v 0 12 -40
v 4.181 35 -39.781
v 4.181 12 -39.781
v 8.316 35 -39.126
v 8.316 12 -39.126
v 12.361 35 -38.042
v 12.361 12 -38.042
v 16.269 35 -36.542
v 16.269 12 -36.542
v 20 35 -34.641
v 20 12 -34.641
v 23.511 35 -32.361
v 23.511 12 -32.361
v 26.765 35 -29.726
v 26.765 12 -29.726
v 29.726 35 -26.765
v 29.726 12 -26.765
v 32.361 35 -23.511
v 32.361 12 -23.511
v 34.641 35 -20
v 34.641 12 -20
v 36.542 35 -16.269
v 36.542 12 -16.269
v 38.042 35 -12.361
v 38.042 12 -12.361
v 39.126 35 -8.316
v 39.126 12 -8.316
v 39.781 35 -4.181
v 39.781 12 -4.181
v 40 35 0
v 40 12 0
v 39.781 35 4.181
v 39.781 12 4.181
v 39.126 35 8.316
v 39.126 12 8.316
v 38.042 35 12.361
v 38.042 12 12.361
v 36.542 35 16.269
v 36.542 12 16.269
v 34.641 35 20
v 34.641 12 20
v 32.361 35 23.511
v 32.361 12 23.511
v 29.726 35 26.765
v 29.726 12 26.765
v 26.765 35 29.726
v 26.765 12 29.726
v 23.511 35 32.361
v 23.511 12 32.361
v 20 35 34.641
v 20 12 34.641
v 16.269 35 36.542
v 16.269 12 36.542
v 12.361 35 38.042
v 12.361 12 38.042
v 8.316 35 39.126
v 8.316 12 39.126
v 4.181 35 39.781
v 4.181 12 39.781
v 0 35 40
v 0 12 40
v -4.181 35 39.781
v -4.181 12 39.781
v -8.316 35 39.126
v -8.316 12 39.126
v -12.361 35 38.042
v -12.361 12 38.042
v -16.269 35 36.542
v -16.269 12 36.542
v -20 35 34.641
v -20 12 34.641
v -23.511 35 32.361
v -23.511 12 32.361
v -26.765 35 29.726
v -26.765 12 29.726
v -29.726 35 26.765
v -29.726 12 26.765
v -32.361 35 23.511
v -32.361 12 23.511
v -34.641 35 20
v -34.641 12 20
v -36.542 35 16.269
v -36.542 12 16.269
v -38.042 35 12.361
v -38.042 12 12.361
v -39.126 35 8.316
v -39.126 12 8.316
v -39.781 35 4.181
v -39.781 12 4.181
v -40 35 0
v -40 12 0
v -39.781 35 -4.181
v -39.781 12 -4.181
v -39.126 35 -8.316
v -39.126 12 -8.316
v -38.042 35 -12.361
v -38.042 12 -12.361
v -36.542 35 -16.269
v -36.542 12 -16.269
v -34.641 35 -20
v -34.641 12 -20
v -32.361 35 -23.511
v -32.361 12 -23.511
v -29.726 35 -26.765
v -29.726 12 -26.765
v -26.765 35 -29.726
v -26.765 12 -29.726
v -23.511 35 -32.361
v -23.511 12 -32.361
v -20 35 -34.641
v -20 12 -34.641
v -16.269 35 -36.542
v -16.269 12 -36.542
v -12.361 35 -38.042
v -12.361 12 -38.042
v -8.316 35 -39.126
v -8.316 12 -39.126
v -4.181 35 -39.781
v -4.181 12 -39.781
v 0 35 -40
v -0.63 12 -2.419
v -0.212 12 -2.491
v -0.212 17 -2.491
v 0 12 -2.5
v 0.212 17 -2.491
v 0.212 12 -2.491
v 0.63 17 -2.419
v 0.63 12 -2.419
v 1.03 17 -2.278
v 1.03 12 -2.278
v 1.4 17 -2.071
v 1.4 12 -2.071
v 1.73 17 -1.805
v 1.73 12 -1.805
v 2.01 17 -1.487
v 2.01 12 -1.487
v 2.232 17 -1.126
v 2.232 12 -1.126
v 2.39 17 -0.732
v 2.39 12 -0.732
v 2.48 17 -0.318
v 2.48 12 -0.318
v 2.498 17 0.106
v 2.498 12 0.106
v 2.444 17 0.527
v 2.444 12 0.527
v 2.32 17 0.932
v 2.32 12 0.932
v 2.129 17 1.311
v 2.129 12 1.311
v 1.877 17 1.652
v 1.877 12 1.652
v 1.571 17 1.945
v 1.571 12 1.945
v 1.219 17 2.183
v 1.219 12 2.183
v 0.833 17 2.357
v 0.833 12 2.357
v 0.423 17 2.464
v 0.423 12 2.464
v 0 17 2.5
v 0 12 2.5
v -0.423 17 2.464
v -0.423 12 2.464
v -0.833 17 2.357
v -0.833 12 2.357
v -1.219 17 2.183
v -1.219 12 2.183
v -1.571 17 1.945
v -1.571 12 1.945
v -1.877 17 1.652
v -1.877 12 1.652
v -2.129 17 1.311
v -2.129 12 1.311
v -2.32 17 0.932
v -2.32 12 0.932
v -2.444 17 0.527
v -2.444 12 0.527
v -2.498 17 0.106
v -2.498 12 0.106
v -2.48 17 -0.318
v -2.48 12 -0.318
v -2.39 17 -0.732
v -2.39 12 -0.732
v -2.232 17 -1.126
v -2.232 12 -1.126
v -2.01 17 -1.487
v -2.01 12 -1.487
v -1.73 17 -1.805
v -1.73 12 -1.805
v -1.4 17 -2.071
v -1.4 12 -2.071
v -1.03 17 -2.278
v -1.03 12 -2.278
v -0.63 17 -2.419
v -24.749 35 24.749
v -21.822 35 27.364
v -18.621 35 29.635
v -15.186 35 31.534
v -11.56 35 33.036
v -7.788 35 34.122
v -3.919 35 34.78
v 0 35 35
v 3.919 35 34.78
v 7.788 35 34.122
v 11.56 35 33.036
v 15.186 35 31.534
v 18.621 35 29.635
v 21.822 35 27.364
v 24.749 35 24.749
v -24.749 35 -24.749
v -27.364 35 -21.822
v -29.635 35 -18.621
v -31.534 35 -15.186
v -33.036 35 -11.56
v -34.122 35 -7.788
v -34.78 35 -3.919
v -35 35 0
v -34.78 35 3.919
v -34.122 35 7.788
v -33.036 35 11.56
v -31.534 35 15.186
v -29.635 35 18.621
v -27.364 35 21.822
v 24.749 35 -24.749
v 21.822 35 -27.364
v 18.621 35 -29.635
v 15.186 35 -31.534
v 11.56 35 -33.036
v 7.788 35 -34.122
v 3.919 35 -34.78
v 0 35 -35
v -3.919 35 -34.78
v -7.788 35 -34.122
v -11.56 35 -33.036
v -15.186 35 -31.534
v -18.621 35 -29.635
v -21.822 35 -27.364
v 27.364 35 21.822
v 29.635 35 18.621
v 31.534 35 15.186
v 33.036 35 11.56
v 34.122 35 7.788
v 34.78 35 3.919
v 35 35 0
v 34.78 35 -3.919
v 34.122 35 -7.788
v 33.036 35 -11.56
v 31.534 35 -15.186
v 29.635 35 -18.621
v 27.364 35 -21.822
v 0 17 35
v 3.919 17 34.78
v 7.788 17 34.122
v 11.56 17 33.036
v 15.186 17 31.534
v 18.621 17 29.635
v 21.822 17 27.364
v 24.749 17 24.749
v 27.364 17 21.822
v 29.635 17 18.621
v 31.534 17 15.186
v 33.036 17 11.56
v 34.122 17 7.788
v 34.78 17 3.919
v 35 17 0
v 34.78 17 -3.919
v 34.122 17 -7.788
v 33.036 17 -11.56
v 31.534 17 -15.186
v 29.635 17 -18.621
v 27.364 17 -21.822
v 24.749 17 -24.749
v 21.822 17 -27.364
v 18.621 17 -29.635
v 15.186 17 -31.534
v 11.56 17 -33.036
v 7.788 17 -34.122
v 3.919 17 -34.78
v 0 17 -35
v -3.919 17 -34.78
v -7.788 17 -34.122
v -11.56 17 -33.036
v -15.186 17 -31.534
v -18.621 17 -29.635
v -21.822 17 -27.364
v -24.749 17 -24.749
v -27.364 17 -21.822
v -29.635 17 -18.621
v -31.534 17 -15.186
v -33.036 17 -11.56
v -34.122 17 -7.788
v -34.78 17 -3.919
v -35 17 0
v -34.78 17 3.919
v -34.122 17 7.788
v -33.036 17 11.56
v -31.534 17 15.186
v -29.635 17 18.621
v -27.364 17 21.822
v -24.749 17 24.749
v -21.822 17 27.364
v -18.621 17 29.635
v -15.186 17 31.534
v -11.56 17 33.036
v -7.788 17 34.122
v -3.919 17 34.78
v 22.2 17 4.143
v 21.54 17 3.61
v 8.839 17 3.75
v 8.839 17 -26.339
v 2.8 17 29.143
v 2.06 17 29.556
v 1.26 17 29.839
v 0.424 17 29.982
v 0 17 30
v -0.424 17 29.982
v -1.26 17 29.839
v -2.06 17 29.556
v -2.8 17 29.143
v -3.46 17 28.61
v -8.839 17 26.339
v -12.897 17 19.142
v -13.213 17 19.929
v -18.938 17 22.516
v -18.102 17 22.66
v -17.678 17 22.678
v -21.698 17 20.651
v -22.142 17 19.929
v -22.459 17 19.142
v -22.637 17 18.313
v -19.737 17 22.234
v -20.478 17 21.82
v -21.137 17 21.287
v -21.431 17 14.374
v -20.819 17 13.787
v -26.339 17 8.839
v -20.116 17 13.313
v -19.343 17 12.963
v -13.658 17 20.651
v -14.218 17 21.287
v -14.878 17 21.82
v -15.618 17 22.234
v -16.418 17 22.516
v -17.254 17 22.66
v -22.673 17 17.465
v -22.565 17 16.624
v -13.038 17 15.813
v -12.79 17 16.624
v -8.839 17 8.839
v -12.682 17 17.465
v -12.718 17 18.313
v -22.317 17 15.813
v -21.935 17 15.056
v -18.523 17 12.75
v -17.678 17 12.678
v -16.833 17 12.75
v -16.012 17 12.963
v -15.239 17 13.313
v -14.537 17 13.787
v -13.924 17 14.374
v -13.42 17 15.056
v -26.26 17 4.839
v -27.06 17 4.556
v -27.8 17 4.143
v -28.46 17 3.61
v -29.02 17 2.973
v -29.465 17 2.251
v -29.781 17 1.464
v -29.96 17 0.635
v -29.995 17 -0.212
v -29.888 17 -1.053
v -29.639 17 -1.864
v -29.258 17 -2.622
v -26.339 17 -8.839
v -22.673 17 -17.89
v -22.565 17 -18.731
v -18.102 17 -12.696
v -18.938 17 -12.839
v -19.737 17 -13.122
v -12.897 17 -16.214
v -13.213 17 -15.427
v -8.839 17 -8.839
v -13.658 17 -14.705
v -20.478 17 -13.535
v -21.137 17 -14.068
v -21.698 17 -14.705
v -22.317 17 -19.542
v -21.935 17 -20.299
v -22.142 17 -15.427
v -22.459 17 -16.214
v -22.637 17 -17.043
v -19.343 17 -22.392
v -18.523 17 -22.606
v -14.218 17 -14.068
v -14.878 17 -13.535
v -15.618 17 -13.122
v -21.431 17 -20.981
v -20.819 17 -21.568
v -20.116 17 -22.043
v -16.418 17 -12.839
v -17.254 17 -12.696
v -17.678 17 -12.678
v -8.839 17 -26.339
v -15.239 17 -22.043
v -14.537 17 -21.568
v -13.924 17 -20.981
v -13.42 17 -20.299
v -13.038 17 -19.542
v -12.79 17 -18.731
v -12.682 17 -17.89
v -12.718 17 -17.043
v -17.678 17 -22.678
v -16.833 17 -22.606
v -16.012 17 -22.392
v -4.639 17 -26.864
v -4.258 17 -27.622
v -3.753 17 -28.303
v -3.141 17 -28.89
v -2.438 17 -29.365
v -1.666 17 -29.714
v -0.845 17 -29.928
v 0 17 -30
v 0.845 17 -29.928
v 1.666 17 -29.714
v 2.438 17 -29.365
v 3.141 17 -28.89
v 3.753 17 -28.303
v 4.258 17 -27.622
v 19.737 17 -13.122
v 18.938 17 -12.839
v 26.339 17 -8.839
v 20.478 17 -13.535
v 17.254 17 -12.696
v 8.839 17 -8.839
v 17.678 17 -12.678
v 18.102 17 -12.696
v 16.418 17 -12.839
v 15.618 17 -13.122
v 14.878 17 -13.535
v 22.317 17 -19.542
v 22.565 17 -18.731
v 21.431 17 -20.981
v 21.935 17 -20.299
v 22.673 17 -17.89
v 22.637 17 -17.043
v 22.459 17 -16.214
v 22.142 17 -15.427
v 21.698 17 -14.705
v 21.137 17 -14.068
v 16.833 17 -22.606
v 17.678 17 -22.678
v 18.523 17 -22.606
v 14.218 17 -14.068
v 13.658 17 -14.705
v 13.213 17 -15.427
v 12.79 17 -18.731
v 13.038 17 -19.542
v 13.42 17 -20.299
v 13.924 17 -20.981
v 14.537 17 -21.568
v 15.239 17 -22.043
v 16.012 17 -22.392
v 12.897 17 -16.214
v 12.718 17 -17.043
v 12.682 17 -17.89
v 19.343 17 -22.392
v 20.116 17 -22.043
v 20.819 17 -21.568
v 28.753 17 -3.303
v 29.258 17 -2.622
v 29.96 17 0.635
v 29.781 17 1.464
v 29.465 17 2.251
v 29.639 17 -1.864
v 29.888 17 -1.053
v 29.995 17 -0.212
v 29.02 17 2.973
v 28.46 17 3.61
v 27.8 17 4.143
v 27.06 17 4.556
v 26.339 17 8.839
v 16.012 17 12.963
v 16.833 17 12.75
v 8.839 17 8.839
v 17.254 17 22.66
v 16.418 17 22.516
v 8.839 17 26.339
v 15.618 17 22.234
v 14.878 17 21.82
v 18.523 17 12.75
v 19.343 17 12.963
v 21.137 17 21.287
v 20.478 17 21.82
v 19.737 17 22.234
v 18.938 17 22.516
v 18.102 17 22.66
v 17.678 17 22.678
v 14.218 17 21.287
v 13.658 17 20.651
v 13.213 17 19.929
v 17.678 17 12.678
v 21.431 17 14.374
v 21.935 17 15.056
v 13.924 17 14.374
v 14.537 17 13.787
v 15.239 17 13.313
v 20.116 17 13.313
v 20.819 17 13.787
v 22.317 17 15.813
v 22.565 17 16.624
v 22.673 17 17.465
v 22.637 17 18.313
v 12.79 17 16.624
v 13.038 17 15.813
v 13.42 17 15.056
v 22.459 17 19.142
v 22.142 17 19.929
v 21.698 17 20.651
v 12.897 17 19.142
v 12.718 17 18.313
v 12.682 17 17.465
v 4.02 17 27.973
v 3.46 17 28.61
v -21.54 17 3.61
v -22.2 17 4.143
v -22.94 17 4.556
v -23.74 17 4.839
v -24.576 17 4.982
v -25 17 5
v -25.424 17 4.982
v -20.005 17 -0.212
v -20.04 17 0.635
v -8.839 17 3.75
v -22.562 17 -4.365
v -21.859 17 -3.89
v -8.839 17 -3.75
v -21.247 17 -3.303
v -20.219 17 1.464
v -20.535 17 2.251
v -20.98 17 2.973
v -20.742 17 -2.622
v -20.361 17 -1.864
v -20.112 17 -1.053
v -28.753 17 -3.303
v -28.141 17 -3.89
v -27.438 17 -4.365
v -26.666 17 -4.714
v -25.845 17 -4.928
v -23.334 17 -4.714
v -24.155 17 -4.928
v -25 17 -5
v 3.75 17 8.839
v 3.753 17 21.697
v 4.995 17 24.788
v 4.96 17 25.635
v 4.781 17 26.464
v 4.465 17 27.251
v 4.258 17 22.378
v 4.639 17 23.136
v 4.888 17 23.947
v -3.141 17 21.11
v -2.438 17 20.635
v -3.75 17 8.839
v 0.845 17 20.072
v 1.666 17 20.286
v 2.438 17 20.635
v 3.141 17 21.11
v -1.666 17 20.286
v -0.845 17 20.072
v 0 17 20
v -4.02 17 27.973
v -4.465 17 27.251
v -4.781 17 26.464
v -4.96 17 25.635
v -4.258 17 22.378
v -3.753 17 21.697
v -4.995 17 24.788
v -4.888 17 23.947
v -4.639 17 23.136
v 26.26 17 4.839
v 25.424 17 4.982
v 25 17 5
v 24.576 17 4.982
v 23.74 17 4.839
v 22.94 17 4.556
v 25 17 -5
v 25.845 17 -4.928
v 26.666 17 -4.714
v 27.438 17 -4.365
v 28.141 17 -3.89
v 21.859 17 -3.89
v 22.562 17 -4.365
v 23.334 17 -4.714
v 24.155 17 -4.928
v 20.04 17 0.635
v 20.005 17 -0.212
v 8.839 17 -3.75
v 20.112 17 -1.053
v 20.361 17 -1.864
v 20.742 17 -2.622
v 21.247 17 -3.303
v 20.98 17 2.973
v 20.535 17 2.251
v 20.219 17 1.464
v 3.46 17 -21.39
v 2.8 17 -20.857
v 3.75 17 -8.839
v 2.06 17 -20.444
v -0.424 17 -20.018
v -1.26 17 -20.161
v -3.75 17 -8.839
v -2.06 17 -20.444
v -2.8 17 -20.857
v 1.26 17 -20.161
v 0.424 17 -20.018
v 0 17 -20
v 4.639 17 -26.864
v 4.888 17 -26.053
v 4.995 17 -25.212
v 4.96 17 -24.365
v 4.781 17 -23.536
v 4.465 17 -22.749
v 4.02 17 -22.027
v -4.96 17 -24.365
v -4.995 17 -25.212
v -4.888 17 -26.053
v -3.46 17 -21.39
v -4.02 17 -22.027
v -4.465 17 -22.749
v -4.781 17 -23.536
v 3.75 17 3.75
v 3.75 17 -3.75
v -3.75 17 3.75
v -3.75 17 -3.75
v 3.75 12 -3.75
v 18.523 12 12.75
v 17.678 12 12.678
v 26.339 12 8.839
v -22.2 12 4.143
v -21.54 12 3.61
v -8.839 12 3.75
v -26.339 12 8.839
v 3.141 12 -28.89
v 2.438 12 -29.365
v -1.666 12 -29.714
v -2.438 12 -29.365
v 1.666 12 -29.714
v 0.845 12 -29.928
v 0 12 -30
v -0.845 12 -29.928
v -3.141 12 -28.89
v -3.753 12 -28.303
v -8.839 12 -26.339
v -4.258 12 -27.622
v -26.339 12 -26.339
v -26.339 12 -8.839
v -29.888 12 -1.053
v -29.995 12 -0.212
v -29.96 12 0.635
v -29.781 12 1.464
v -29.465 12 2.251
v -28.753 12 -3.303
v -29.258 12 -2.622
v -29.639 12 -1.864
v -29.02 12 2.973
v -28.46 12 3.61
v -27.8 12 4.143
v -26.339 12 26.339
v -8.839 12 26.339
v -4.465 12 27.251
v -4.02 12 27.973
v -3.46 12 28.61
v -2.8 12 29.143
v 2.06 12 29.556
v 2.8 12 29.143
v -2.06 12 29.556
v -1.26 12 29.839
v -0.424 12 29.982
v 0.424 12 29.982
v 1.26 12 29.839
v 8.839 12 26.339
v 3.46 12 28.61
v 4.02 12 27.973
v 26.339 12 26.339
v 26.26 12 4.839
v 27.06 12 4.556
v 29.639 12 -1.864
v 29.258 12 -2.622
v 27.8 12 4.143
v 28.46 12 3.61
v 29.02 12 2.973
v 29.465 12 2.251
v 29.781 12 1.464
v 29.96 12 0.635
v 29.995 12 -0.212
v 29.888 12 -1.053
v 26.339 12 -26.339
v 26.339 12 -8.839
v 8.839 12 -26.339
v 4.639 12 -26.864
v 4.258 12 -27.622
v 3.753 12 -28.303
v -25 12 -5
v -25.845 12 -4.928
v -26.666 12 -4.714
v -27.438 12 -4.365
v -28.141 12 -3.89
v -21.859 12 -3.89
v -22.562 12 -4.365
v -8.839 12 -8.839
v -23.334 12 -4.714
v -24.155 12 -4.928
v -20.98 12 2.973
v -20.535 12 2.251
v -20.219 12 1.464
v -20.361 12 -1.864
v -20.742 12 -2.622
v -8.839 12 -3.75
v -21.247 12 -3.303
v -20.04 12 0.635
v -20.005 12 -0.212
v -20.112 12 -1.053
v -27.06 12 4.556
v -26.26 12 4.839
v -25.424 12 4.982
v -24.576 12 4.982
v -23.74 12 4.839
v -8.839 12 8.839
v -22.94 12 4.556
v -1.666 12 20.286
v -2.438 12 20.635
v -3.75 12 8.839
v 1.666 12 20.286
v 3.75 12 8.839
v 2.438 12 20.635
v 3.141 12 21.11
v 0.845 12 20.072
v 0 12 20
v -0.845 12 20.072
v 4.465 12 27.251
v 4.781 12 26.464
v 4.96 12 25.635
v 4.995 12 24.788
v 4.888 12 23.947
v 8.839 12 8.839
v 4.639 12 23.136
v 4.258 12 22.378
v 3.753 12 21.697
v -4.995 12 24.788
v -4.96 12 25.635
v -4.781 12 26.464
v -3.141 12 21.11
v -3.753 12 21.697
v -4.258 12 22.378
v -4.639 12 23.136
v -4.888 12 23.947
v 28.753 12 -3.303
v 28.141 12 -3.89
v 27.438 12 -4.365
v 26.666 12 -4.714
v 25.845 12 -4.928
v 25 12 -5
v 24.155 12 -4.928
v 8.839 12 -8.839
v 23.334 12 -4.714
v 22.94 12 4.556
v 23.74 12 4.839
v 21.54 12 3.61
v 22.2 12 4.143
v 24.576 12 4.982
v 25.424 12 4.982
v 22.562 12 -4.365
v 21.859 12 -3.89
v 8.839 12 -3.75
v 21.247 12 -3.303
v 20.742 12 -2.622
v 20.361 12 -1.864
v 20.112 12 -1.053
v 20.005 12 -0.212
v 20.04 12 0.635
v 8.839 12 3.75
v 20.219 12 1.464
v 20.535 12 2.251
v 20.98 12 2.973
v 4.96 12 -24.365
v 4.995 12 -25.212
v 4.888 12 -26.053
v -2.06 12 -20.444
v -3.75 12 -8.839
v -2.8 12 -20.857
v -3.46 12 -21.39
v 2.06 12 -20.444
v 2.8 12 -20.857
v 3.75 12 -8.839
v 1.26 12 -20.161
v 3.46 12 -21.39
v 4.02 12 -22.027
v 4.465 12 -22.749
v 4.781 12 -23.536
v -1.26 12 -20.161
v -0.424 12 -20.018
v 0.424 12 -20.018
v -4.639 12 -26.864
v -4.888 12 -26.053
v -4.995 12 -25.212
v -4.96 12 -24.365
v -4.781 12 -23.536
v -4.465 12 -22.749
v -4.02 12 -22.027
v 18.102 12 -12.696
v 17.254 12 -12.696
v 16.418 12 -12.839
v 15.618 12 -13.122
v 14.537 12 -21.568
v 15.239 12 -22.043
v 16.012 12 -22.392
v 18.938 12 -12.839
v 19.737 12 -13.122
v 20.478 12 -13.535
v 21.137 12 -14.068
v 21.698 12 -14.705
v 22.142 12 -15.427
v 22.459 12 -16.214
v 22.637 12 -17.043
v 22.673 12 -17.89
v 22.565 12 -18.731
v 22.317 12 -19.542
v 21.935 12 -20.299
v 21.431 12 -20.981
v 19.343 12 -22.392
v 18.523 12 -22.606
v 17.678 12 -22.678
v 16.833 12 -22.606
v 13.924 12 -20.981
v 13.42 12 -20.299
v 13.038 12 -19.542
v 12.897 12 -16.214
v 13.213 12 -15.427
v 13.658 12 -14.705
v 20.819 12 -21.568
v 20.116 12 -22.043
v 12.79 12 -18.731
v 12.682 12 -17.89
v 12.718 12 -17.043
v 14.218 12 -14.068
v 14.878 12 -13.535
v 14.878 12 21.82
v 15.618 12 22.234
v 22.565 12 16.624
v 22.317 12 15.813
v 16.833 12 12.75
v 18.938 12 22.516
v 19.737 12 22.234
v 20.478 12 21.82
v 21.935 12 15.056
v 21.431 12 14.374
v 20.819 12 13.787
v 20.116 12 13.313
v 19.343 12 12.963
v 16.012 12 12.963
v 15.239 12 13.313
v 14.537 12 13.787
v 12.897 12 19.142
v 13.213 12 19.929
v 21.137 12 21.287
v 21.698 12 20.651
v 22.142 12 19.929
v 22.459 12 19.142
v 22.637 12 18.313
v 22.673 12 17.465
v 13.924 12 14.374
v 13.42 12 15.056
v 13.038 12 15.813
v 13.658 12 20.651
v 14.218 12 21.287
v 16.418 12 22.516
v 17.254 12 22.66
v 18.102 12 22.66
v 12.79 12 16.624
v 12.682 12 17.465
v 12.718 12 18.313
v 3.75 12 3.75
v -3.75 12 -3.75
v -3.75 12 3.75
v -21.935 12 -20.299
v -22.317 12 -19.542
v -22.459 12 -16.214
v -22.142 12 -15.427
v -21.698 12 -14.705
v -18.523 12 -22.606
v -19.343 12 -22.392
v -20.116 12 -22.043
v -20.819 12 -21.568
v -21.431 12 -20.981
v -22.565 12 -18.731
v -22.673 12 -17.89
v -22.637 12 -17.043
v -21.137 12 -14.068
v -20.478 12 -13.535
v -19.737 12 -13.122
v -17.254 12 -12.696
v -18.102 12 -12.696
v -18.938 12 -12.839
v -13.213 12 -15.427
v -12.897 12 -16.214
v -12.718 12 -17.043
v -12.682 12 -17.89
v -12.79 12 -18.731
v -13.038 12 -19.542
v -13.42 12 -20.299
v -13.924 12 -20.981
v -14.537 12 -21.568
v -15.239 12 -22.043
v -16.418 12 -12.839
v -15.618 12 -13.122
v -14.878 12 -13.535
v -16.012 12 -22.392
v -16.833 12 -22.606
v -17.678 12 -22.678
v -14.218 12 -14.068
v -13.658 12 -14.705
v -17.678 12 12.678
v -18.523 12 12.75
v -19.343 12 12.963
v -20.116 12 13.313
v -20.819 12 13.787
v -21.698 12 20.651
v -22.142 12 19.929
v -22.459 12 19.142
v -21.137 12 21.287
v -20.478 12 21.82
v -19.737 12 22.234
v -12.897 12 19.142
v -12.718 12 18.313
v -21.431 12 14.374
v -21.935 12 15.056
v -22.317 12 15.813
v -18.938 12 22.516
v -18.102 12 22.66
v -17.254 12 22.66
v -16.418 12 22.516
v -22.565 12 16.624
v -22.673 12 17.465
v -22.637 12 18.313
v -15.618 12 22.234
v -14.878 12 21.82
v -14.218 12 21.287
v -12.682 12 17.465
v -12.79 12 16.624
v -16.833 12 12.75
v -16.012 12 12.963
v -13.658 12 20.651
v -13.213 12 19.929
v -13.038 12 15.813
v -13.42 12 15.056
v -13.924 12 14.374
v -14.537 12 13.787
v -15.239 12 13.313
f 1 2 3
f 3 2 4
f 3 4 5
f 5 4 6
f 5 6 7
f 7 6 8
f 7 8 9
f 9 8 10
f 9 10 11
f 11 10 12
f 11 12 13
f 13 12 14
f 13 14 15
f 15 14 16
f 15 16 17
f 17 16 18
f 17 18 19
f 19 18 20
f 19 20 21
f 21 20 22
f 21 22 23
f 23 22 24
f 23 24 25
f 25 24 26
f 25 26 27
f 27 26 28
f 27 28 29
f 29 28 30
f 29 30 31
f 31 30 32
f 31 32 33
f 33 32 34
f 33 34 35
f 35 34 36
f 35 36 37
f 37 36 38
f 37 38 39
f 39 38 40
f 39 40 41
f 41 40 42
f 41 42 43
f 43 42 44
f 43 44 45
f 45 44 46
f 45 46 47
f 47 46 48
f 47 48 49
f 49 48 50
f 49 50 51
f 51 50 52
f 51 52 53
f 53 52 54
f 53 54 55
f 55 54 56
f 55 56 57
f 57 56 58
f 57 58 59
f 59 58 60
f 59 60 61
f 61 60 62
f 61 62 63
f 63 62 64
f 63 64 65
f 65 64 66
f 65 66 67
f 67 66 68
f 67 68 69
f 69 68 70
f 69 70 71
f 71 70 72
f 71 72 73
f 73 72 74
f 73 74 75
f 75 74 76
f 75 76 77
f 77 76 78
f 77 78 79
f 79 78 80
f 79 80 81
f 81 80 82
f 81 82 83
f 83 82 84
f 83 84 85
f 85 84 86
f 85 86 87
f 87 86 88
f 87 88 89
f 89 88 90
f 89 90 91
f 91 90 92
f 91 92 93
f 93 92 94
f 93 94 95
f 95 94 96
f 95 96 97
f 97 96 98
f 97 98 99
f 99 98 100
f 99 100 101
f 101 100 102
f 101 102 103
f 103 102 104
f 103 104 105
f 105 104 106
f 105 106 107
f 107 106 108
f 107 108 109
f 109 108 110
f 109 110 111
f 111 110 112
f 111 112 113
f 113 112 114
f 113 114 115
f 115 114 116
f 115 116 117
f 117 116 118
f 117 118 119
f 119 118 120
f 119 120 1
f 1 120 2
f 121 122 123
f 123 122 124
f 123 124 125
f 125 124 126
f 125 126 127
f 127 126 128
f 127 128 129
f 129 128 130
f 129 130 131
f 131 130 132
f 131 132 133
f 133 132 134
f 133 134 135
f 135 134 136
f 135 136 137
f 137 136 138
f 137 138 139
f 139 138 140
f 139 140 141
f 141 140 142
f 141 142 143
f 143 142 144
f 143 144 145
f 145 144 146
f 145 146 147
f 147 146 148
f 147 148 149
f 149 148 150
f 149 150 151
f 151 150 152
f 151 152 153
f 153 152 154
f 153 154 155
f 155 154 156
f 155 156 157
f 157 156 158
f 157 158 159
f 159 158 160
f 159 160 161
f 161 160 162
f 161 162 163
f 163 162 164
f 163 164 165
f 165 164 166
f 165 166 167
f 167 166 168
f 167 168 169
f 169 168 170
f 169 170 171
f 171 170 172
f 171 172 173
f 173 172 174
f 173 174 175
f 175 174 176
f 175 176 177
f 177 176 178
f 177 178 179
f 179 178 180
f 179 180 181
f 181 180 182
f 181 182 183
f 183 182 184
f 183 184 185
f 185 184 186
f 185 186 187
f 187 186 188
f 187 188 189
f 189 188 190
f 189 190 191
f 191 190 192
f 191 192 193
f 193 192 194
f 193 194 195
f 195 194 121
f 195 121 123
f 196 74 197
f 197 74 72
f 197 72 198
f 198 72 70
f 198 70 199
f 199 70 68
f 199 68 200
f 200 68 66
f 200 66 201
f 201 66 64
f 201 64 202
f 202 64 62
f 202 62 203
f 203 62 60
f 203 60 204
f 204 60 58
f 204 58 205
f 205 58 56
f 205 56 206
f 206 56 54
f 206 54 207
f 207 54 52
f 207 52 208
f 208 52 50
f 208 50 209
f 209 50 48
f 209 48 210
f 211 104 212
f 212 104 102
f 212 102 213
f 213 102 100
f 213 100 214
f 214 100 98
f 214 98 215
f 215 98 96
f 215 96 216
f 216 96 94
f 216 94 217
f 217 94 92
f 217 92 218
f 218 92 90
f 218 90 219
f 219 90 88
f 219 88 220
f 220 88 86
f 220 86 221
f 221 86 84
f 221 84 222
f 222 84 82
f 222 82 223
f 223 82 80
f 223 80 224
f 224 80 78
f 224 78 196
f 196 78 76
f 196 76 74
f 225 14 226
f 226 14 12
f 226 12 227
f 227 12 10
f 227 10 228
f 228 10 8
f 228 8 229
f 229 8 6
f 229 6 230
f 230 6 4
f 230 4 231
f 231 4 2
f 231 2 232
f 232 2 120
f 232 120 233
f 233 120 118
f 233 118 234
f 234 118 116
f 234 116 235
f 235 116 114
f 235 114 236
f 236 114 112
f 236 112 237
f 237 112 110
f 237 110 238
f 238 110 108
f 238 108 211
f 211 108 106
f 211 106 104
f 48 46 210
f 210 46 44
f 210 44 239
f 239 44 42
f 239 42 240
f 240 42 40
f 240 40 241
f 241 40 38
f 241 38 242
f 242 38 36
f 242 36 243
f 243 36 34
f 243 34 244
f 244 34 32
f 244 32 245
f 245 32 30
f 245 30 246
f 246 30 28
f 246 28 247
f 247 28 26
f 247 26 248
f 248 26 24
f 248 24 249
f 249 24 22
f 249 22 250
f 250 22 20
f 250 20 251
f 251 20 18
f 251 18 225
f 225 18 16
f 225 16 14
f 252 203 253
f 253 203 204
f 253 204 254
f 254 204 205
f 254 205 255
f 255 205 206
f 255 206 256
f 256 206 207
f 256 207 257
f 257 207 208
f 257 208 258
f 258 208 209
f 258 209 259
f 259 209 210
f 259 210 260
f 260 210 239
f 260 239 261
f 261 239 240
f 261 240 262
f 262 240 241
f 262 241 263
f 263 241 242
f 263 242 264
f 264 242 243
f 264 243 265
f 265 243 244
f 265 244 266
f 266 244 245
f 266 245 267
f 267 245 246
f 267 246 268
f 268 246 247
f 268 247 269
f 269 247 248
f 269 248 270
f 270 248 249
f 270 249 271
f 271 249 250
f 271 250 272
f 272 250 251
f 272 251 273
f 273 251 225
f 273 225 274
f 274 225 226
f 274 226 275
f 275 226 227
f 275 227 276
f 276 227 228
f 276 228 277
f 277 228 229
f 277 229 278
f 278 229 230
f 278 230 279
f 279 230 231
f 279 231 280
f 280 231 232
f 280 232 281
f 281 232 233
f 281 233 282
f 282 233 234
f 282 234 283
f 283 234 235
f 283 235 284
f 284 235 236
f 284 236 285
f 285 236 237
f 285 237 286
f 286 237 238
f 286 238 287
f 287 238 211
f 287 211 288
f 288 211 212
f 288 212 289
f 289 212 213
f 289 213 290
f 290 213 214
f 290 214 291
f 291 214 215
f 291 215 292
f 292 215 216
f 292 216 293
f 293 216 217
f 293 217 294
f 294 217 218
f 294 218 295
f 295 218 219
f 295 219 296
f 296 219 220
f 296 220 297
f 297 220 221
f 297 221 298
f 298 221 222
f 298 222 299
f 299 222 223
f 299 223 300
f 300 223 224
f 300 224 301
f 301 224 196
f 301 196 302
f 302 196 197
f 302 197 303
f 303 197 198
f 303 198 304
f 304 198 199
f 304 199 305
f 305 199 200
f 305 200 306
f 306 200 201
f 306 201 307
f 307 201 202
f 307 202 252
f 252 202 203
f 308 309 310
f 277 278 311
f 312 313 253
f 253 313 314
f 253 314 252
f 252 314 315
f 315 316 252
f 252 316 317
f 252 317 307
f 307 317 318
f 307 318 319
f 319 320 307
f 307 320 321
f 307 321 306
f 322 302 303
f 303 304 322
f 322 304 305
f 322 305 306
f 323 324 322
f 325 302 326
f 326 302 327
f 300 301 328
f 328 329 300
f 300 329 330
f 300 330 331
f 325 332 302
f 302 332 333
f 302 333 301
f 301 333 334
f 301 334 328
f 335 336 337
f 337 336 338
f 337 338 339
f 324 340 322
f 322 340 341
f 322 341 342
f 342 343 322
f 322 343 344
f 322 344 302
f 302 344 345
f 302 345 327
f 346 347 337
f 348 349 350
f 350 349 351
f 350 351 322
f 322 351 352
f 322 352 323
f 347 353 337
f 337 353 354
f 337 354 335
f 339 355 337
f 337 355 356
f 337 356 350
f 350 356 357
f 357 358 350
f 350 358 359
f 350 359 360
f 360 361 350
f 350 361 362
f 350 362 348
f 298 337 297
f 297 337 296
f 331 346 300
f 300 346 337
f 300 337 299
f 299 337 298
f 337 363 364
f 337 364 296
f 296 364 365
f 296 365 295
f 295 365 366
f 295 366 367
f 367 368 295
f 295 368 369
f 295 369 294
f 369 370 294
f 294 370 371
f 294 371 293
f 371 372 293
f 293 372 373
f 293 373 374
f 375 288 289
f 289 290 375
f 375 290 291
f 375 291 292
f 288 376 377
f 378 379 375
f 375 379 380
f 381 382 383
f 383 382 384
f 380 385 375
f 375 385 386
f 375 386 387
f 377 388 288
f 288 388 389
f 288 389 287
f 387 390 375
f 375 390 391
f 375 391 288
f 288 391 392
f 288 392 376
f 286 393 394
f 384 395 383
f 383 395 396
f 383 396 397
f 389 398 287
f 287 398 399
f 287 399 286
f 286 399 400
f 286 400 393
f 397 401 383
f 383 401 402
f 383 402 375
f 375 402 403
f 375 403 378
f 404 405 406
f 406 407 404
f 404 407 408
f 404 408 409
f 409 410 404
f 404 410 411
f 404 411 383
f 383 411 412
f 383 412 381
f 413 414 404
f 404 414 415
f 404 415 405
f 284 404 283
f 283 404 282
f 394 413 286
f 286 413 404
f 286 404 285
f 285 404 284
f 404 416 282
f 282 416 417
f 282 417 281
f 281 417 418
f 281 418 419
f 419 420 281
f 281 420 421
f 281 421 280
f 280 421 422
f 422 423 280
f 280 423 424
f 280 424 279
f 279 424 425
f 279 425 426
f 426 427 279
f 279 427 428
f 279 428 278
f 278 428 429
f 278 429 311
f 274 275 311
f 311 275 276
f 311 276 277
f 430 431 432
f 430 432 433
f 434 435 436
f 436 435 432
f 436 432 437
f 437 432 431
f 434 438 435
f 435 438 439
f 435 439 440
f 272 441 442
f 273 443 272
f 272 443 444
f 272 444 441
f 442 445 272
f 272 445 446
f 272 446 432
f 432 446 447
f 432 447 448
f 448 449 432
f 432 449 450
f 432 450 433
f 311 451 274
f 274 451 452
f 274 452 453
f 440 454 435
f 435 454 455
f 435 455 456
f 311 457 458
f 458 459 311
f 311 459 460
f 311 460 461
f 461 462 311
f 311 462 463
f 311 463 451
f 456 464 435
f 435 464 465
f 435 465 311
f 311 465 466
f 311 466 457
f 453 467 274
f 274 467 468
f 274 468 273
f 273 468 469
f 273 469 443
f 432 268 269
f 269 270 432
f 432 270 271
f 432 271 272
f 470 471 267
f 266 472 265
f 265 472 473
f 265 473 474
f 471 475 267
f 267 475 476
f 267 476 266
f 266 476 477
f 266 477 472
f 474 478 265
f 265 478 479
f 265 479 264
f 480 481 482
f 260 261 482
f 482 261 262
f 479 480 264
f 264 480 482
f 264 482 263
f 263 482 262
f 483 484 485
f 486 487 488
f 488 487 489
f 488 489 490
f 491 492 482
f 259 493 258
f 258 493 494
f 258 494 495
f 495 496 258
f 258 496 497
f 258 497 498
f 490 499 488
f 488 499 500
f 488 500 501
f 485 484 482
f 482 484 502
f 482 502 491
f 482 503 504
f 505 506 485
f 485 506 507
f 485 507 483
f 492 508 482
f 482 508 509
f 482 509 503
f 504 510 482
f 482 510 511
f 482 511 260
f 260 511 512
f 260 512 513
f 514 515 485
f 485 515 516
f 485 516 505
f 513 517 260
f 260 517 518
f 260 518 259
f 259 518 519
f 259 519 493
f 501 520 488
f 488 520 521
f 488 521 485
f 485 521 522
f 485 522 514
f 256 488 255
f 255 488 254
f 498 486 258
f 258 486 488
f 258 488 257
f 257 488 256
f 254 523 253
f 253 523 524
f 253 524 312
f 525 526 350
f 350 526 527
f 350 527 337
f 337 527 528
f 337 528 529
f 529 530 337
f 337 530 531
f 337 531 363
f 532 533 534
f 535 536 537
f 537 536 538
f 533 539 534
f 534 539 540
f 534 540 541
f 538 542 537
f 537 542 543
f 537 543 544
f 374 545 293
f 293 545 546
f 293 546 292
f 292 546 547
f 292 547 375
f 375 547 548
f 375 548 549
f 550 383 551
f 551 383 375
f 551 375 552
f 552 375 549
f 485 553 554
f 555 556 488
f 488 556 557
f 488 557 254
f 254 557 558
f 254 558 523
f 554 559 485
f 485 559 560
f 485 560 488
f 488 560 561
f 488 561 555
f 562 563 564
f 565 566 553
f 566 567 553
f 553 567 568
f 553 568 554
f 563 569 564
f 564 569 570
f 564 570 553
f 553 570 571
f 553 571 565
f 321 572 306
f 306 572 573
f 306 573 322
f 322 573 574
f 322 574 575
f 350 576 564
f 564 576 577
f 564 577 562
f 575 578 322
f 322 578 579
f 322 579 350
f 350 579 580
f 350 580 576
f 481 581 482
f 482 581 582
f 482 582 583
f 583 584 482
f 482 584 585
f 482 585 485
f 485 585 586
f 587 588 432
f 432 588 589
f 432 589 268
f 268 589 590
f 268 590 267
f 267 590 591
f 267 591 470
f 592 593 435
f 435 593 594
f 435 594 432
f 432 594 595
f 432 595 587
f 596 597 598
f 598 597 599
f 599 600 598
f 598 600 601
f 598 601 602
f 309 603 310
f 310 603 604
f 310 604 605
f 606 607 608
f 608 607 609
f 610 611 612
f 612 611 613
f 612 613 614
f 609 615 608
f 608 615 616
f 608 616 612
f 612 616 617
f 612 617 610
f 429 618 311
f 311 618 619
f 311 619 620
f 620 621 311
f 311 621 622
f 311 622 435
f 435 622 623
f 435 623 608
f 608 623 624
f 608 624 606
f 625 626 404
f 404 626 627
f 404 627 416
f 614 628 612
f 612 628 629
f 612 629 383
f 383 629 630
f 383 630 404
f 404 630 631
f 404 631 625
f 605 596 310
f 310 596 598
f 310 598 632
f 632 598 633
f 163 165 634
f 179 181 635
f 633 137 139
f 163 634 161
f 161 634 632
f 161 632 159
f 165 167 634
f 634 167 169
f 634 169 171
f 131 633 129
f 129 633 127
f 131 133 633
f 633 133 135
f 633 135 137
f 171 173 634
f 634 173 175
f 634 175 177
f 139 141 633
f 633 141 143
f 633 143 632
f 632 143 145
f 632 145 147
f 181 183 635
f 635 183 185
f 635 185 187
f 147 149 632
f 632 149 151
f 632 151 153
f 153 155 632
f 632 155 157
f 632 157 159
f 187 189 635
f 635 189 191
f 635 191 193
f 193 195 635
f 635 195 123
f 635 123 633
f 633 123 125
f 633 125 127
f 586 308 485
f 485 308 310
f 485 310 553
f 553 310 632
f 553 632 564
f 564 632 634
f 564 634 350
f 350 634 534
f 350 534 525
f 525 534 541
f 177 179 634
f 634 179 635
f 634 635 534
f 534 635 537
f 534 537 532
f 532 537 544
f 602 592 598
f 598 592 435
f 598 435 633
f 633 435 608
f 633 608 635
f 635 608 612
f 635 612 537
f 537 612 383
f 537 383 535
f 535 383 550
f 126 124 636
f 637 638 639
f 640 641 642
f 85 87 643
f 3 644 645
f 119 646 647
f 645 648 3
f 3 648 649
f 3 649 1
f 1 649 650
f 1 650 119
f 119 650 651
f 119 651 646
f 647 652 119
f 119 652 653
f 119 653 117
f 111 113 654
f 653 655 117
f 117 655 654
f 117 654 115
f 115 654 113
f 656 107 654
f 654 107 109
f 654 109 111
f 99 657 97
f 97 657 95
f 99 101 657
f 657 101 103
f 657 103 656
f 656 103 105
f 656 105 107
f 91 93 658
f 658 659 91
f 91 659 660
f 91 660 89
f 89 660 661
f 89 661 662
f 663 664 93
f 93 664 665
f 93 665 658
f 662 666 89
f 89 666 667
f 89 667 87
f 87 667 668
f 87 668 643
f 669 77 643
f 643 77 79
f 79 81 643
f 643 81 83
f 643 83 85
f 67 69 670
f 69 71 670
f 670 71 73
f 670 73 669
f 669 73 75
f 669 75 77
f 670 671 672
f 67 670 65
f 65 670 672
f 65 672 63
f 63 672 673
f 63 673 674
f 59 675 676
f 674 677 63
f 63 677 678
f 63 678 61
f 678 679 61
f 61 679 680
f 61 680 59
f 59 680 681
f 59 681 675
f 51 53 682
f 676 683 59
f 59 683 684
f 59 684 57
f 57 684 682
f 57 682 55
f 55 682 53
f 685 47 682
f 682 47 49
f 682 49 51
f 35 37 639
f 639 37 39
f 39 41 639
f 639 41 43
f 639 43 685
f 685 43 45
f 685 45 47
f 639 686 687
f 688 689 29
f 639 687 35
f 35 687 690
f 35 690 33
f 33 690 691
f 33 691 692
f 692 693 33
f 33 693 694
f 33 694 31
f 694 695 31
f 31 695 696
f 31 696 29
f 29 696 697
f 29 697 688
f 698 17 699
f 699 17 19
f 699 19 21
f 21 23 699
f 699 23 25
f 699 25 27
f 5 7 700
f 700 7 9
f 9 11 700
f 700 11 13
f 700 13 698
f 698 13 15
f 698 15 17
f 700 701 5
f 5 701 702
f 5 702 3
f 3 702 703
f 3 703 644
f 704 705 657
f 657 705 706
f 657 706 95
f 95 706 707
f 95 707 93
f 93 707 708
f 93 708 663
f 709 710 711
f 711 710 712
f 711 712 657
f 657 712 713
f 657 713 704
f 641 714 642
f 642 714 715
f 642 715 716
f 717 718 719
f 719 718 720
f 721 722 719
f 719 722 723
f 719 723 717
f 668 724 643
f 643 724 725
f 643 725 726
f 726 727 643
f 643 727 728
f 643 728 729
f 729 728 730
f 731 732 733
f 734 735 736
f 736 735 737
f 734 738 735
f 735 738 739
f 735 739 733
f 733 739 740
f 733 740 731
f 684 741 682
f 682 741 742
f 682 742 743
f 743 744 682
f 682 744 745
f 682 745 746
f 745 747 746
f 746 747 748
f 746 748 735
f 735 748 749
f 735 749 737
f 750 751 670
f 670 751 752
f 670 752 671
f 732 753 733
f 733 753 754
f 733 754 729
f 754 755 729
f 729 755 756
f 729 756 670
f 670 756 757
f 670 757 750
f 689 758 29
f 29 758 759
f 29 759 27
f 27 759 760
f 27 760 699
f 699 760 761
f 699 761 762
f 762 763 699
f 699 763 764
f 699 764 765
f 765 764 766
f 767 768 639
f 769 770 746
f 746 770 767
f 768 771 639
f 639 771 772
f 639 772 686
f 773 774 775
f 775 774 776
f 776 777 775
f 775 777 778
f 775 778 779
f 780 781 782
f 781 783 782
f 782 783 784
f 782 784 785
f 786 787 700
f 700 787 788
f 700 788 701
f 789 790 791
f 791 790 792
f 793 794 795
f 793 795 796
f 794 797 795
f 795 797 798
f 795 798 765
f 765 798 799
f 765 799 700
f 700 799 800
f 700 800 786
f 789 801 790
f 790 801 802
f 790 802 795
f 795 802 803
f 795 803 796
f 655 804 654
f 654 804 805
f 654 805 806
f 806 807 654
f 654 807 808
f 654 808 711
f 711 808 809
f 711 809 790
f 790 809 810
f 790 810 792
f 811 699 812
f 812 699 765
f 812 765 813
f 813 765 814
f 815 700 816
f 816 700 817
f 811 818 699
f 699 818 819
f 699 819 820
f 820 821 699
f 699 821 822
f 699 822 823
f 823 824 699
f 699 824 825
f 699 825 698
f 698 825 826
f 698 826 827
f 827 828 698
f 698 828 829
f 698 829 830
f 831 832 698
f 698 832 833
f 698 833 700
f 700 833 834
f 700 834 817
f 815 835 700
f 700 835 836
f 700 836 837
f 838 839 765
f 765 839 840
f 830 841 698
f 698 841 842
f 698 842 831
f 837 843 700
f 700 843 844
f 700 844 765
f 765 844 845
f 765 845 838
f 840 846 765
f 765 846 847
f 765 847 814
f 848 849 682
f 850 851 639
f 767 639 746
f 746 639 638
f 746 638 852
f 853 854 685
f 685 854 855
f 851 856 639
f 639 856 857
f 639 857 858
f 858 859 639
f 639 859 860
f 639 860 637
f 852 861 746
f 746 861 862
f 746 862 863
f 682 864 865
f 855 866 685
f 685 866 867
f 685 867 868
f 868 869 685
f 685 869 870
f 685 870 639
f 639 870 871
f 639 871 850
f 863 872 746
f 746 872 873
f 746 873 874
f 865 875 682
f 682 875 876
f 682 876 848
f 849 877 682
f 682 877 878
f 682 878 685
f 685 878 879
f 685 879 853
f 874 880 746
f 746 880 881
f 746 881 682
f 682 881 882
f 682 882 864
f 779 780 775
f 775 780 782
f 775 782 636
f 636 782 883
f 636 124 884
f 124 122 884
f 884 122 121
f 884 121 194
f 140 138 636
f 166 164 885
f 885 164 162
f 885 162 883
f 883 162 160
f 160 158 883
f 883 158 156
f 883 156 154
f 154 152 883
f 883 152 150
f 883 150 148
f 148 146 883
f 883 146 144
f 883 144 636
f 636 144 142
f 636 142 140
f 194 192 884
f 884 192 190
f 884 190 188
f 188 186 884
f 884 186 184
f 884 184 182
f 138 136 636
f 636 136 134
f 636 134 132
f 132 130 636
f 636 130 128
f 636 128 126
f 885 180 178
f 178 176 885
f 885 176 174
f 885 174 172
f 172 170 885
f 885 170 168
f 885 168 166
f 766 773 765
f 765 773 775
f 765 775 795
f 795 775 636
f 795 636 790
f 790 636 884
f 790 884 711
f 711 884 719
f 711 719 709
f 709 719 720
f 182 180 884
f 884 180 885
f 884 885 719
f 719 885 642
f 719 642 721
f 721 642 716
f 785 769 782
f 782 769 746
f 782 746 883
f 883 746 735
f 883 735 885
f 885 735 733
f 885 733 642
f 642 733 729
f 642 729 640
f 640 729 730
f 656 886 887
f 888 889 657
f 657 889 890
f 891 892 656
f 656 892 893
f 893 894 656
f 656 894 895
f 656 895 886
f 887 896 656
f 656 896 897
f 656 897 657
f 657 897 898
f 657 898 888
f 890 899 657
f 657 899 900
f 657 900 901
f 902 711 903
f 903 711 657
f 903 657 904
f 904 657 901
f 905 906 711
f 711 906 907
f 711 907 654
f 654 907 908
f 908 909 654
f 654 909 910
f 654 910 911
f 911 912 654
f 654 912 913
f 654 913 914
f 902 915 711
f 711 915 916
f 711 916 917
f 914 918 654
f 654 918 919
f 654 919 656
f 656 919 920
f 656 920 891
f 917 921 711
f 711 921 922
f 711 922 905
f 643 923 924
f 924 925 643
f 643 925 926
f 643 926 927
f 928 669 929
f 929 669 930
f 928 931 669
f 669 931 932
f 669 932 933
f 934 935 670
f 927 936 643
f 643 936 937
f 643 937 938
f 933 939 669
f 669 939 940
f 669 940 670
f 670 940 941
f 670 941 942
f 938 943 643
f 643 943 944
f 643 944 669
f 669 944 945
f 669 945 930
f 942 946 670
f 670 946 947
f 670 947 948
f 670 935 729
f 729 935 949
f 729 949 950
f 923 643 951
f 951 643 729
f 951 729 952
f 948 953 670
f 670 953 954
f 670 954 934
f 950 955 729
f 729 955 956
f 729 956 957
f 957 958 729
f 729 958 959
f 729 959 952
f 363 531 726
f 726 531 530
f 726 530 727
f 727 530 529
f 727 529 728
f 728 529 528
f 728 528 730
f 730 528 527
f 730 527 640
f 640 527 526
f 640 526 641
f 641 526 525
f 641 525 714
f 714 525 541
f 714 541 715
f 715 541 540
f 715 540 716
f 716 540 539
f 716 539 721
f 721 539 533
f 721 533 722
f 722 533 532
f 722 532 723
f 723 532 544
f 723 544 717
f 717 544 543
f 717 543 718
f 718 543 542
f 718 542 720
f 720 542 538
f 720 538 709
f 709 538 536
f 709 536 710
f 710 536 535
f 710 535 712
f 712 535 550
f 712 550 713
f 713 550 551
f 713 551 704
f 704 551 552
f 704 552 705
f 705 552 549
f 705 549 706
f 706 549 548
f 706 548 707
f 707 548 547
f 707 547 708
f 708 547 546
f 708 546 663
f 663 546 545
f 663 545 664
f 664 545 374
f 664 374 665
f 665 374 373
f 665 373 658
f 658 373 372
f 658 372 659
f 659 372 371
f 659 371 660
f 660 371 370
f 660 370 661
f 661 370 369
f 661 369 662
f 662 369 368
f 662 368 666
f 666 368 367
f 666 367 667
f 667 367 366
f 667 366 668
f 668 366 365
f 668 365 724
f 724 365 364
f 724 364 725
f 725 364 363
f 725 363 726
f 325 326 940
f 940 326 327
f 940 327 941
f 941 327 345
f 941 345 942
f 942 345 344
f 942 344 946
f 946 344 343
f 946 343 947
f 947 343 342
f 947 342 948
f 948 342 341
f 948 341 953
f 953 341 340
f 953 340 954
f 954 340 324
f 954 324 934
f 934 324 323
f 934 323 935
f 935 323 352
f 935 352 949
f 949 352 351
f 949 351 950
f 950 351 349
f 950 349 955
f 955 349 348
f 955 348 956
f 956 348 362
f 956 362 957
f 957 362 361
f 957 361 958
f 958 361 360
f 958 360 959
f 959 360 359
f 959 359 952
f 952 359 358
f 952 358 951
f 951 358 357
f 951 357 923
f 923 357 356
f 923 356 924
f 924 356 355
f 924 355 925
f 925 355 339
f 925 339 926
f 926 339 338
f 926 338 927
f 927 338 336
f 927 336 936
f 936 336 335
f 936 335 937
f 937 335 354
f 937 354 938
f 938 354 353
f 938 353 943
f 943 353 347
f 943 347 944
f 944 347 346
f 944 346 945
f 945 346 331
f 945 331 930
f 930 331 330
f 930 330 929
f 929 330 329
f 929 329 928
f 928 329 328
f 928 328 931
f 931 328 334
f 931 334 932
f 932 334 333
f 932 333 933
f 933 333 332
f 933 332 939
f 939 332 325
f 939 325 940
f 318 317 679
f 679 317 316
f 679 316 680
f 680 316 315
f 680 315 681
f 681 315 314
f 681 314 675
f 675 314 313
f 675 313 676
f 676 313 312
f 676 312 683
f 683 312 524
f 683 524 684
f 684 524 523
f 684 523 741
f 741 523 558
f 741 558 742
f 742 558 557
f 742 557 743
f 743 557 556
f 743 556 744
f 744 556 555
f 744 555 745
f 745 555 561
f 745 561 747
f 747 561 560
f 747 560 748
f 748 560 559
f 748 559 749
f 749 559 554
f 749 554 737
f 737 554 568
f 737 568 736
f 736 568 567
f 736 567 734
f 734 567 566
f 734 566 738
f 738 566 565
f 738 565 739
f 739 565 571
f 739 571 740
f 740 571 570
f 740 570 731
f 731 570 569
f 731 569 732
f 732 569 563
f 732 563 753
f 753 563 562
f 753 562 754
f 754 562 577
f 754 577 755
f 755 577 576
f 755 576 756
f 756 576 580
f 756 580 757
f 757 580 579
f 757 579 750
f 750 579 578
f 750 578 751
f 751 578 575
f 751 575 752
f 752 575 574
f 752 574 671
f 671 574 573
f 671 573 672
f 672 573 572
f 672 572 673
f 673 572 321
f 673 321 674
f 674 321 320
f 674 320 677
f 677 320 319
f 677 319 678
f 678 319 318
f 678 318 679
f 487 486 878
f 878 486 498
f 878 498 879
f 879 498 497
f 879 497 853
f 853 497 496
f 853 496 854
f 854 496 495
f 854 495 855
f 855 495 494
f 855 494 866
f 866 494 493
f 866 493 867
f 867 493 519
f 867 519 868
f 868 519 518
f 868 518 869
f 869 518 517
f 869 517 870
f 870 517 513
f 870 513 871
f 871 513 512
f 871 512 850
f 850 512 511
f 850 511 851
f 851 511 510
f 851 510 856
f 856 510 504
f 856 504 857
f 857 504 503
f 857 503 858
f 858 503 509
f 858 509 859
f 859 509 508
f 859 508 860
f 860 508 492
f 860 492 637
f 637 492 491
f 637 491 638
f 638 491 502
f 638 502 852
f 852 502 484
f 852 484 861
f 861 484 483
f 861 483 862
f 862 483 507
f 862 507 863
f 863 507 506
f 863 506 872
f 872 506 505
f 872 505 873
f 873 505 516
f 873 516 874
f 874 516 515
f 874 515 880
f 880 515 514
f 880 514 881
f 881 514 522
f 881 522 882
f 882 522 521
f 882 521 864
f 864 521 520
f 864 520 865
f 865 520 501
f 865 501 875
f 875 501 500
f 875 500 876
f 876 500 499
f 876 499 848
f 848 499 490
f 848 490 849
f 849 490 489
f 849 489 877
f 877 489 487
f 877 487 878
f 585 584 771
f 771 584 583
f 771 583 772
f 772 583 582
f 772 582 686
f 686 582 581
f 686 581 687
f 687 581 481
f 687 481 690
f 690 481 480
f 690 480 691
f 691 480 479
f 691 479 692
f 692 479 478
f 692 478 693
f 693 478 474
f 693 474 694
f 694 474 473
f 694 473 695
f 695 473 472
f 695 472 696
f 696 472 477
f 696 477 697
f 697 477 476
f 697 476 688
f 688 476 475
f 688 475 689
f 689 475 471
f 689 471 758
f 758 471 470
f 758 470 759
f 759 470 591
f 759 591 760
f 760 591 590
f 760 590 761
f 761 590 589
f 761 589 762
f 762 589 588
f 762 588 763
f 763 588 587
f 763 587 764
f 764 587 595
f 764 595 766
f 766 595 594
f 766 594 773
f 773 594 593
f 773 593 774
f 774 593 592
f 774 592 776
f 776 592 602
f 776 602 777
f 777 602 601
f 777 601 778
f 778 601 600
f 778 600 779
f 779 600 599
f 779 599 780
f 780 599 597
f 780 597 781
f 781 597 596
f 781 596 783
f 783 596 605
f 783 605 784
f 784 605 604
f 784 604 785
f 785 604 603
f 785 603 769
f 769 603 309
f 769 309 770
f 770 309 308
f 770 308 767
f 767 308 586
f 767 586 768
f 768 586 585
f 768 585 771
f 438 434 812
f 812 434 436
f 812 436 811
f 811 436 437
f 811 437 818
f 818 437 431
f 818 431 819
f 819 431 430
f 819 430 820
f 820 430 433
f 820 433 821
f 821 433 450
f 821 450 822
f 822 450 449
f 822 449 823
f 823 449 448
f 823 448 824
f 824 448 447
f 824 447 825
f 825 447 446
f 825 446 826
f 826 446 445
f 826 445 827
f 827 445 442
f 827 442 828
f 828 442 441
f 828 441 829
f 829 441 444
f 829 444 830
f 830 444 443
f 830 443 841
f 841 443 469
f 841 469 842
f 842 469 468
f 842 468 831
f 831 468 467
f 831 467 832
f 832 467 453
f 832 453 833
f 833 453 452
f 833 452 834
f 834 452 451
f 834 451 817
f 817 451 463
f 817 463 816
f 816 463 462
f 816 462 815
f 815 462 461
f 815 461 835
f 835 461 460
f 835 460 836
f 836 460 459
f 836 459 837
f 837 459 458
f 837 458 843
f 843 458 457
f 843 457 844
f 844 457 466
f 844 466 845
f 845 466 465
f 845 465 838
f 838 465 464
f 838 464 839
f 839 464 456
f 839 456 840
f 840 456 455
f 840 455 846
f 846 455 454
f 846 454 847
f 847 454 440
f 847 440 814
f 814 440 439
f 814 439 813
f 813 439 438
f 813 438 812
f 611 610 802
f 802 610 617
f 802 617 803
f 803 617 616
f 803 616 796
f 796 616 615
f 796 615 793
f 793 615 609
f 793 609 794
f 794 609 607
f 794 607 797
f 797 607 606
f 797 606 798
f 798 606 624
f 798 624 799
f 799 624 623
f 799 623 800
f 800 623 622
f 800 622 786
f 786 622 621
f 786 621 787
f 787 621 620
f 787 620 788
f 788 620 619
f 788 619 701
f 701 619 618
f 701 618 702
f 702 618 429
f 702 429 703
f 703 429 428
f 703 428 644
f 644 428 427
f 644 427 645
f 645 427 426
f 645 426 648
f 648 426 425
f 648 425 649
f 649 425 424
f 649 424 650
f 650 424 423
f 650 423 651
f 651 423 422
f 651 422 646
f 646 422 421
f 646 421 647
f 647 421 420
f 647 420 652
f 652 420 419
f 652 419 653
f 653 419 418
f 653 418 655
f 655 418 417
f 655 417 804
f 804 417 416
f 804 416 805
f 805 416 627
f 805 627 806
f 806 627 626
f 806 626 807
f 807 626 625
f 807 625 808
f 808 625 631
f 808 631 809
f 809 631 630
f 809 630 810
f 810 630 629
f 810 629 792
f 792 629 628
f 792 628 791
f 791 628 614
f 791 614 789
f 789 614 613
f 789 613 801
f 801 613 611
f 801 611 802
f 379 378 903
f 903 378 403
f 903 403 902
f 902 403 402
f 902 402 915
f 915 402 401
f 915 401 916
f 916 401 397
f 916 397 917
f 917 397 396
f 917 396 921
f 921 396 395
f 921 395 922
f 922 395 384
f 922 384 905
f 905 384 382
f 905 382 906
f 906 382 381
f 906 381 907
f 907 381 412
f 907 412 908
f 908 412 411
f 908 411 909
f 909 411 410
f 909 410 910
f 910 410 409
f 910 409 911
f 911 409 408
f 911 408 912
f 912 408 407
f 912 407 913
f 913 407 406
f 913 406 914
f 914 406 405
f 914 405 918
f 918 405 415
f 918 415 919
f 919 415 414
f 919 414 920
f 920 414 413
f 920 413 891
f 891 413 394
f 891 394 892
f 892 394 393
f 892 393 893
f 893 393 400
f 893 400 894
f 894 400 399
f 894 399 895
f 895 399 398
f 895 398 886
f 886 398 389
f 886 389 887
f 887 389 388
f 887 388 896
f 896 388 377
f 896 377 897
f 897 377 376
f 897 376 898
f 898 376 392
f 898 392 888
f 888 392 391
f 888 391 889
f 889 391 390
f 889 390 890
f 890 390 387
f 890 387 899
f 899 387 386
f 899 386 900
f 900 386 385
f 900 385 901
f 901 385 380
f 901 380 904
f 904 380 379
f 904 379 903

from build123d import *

# Parameters (mm, degrees)
ESQUISSE1_R             = 40
BOSS_EXTRU_2_DEPTH      = 35
ESQUISSE4_R             = 35
ENL_V_MAT_EXTRU_2_DEPTH = 18
ESQUISSE6_R             = 2.5
ENL_V_MAT_EXTRU_4_DEPTH = 12
ESQUISSE5_R             = 40
ENL_V_MAT_EXTRU_5_DEPTH = 12
ESQUISSE7_R             = 5
ENL_V_MAT_EXTRU_7_DEPTH = 10


with BuildPart() as part:
    # Esquisse1 → Boss.-Extru.2 (new body)
    with BuildSketch(Plane(origin=(0, 0, 0), x_dir=(1, 0, 0), z_dir=(0, 1, 0))):
        with Locations(Location((0, 0, 0), (0, 0, 270))):
            Circle(ESQUISSE1_R)
    extrude(amount=BOSS_EXTRU_2_DEPTH)

    # Esquisse4 → Enlèv. mat.-Extru.2 (cut)
    with BuildSketch(Plane(origin=(0, 35, 0), x_dir=(1, 0, 0), z_dir=(0, 1, 0))):
        with Locations(Location((0, 0, 0), (0, 0, 270))):
            Circle(ESQUISSE4_R)
    extrude(amount=-ENL_V_MAT_EXTRU_2_DEPTH, mode=Mode.SUBTRACT)

    # Esquisse6 → Enlèv. mat.-Extru.4 (cut)
    with BuildSketch(Plane(origin=(0, 17, 0), x_dir=(1, 0, 0), z_dir=(0, 1, 0))):
        with Locations(Location((0, 0, 0), (0, 0, 270))):
            Circle(ESQUISSE6_R)
    extrude(amount=-ENL_V_MAT_EXTRU_4_DEPTH, mode=Mode.SUBTRACT)

    # Esquisse5 → Enlèv. mat.-Extru.5 (cut)
    with BuildSketch(Plane(origin=(0, 0, 0), x_dir=(-1, 0, 0), z_dir=(0, -1, 0))):
        with Locations(Location((0, 0, 0), (0, 0, 90))):
            Circle(ESQUISSE5_R)
    extrude(amount=-ENL_V_MAT_EXTRU_5_DEPTH, mode=Mode.SUBTRACT)

    # Esquisse7 → Enlèv. mat.-Extru.7 (cut)
    with BuildSketch(Plane.XZ.offset(-12)):
        with Locations(Location((-25, 0, 0), (0, 0, 270))):
            Circle(ESQUISSE7_R)
        with Locations(Location((-17.67766953, 17.67766953, 0), (0, 0, 270))):
            Circle(ESQUISSE7_R)
        with Locations(Location((0, 25, 0), (0, 0, 270))):
            Circle(ESQUISSE7_R)
        with Locations(Location((17.67766953, 17.67766953, 0), (0, 0, 270))):
            Circle(ESQUISSE7_R)
        with Locations(Location((25, 0, 0), (0, 0, 270))):
            Circle(ESQUISSE7_R)
        with Locations(Location((17.67766953, -17.67766953, 0), (0, 0, 270))):
            Circle(ESQUISSE7_R)
        with Locations(Location((0, -25, 0), (0, 0, 270))):
            Circle(ESQUISSE7_R)
        with Locations(Location((-17.67766953, -17.67766953, 0), (0, 0, 270))):
            Circle(ESQUISSE7_R)
    extrude(amount=-ENL_V_MAT_EXTRU_7_DEPTH, mode=Mode.SUBTRACT)


solid = part.part
